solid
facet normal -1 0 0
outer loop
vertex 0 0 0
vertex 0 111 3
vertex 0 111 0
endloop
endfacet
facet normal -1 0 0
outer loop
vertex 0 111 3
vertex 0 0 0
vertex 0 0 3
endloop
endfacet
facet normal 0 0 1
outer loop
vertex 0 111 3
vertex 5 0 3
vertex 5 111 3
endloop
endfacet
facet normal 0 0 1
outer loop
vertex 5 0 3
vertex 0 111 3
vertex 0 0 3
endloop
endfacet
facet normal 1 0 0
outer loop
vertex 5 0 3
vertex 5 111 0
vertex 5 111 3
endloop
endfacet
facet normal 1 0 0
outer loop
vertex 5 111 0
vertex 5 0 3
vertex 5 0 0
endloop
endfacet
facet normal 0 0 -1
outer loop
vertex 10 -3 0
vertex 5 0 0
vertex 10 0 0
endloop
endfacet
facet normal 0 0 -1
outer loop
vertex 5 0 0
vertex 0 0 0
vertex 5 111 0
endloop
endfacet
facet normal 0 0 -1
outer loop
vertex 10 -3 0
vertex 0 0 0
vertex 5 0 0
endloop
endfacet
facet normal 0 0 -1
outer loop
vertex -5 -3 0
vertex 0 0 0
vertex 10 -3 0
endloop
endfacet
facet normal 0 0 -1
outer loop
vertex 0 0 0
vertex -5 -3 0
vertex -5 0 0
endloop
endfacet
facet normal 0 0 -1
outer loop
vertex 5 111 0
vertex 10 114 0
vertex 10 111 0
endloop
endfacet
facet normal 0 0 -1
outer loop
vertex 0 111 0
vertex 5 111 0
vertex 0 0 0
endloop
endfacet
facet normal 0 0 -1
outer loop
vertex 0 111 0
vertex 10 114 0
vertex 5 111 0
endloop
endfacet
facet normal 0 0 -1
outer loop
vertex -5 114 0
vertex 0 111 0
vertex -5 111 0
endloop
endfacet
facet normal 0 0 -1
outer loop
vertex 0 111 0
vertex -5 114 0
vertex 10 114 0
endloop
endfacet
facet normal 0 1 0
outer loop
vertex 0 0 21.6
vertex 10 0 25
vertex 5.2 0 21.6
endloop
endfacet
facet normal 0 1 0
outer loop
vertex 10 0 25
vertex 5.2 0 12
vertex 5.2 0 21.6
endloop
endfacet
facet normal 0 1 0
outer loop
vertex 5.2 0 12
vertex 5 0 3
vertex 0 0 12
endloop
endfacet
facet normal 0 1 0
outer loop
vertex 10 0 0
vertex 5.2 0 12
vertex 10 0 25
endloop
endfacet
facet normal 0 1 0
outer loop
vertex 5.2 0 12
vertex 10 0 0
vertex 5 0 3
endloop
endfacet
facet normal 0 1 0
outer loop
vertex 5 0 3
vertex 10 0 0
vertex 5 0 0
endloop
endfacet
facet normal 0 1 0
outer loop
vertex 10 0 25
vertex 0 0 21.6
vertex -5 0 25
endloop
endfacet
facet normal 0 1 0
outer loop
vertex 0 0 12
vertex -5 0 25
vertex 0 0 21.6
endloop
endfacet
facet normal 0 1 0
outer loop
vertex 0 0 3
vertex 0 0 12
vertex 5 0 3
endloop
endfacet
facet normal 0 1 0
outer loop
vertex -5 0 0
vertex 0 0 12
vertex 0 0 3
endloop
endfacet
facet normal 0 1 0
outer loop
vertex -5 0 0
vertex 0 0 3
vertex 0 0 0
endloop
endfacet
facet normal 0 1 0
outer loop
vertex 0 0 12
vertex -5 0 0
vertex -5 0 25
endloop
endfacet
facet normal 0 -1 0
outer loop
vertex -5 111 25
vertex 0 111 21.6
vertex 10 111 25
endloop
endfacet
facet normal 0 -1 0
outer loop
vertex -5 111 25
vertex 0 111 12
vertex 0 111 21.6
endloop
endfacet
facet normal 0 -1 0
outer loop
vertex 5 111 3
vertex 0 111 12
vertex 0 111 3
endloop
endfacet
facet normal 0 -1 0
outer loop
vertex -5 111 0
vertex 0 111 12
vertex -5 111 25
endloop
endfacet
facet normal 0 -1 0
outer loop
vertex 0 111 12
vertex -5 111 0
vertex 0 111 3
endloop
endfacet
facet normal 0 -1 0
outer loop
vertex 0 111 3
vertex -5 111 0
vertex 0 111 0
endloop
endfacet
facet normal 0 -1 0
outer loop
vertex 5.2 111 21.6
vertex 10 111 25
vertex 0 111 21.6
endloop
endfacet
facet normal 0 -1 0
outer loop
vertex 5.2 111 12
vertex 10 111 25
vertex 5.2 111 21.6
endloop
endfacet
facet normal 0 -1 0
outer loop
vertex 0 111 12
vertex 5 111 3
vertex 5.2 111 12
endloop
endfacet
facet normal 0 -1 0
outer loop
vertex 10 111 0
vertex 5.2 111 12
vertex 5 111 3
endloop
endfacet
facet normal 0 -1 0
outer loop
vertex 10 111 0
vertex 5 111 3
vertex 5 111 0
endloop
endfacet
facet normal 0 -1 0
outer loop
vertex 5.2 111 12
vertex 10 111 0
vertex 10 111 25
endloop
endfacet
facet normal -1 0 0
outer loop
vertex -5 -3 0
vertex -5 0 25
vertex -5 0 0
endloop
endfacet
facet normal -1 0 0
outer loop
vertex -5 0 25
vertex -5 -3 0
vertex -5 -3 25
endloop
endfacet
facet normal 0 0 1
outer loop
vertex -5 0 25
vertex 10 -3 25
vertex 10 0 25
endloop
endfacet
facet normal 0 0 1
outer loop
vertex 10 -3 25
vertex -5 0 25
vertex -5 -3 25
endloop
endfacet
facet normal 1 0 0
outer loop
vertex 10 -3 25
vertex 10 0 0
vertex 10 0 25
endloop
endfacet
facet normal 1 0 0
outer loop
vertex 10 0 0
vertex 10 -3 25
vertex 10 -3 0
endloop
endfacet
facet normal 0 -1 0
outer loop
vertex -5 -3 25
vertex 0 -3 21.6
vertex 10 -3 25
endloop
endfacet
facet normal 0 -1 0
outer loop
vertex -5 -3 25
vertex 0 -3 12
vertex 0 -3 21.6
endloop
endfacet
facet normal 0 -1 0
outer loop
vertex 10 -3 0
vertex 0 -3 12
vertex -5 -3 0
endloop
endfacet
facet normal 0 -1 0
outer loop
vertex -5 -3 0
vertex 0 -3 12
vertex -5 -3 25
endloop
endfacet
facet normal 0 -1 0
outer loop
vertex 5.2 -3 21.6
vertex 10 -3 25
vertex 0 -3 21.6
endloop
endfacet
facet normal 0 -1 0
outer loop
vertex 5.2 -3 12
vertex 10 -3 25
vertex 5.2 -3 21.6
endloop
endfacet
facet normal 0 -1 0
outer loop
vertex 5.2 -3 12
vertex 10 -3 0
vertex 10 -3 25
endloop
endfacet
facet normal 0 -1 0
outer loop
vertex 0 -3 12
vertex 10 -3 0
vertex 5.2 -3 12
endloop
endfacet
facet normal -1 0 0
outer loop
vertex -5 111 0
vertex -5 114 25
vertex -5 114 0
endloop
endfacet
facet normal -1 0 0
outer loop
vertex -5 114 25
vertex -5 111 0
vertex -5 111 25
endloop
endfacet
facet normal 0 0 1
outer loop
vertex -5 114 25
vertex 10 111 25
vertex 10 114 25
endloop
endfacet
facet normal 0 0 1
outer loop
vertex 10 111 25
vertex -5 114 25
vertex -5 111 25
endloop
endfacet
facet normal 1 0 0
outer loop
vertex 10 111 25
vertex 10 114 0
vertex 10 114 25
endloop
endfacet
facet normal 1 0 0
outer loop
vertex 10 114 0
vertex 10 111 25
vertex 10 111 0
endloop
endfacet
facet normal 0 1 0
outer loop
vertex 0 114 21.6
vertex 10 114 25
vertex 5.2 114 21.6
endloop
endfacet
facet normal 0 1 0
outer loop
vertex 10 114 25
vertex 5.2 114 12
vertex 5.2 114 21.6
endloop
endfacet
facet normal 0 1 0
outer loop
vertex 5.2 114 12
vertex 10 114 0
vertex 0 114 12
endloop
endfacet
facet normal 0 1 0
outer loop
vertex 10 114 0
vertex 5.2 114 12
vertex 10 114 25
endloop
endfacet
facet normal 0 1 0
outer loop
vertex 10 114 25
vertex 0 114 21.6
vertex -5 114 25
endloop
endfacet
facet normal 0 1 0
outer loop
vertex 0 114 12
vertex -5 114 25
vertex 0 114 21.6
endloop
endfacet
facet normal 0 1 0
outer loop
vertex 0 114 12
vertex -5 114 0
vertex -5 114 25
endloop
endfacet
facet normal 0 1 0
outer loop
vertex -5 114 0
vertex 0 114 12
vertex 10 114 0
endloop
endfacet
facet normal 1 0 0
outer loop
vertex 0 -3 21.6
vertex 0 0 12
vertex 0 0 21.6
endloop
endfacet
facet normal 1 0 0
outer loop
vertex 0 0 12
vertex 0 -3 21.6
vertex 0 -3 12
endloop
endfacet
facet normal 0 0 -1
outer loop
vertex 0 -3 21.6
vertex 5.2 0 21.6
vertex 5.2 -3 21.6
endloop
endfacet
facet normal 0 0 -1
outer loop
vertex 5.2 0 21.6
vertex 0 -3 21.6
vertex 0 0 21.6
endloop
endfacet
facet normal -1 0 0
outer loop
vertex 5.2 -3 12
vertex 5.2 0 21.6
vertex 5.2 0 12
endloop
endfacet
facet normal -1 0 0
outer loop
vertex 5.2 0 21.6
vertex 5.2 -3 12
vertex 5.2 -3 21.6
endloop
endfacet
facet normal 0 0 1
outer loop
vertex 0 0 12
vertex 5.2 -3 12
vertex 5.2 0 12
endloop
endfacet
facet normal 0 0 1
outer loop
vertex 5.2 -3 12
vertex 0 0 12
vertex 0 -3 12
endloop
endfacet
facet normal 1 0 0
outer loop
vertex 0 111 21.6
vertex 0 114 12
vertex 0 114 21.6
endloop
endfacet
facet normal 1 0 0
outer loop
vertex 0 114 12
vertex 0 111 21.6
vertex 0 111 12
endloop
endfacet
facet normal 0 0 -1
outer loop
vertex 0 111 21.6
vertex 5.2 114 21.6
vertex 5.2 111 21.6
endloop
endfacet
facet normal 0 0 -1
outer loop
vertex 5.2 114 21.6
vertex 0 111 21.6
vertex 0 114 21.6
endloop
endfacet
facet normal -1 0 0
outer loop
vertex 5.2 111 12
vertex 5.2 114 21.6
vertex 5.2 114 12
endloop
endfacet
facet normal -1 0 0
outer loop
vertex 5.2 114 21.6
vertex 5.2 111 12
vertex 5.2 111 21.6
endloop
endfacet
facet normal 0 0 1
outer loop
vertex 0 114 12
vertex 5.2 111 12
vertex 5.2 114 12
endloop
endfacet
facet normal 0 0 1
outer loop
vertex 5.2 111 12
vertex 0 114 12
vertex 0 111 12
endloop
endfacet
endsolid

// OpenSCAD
//Computer clip for Nvidia Xaviar NX
th=4; //thickness
 difference() {
        union() {
        color("yellow") cube([5,111,th-1]); //length, width, height
        color("brown") translate([-5,-3,0]) cube([15,3,25]); //length, width, height
        color("brown") translate([-5,111,0]) cube([15,3,25]); //length, width, height
        }
       
       //make holes for clips 
        color("blue") translate([0,-4,12]) cube([5.2,5,th*2.4]); //length, width, height
        color("blue") translate([0,110,12]) cube([5.2,5,th*2.4]); //length, width, height
    }
